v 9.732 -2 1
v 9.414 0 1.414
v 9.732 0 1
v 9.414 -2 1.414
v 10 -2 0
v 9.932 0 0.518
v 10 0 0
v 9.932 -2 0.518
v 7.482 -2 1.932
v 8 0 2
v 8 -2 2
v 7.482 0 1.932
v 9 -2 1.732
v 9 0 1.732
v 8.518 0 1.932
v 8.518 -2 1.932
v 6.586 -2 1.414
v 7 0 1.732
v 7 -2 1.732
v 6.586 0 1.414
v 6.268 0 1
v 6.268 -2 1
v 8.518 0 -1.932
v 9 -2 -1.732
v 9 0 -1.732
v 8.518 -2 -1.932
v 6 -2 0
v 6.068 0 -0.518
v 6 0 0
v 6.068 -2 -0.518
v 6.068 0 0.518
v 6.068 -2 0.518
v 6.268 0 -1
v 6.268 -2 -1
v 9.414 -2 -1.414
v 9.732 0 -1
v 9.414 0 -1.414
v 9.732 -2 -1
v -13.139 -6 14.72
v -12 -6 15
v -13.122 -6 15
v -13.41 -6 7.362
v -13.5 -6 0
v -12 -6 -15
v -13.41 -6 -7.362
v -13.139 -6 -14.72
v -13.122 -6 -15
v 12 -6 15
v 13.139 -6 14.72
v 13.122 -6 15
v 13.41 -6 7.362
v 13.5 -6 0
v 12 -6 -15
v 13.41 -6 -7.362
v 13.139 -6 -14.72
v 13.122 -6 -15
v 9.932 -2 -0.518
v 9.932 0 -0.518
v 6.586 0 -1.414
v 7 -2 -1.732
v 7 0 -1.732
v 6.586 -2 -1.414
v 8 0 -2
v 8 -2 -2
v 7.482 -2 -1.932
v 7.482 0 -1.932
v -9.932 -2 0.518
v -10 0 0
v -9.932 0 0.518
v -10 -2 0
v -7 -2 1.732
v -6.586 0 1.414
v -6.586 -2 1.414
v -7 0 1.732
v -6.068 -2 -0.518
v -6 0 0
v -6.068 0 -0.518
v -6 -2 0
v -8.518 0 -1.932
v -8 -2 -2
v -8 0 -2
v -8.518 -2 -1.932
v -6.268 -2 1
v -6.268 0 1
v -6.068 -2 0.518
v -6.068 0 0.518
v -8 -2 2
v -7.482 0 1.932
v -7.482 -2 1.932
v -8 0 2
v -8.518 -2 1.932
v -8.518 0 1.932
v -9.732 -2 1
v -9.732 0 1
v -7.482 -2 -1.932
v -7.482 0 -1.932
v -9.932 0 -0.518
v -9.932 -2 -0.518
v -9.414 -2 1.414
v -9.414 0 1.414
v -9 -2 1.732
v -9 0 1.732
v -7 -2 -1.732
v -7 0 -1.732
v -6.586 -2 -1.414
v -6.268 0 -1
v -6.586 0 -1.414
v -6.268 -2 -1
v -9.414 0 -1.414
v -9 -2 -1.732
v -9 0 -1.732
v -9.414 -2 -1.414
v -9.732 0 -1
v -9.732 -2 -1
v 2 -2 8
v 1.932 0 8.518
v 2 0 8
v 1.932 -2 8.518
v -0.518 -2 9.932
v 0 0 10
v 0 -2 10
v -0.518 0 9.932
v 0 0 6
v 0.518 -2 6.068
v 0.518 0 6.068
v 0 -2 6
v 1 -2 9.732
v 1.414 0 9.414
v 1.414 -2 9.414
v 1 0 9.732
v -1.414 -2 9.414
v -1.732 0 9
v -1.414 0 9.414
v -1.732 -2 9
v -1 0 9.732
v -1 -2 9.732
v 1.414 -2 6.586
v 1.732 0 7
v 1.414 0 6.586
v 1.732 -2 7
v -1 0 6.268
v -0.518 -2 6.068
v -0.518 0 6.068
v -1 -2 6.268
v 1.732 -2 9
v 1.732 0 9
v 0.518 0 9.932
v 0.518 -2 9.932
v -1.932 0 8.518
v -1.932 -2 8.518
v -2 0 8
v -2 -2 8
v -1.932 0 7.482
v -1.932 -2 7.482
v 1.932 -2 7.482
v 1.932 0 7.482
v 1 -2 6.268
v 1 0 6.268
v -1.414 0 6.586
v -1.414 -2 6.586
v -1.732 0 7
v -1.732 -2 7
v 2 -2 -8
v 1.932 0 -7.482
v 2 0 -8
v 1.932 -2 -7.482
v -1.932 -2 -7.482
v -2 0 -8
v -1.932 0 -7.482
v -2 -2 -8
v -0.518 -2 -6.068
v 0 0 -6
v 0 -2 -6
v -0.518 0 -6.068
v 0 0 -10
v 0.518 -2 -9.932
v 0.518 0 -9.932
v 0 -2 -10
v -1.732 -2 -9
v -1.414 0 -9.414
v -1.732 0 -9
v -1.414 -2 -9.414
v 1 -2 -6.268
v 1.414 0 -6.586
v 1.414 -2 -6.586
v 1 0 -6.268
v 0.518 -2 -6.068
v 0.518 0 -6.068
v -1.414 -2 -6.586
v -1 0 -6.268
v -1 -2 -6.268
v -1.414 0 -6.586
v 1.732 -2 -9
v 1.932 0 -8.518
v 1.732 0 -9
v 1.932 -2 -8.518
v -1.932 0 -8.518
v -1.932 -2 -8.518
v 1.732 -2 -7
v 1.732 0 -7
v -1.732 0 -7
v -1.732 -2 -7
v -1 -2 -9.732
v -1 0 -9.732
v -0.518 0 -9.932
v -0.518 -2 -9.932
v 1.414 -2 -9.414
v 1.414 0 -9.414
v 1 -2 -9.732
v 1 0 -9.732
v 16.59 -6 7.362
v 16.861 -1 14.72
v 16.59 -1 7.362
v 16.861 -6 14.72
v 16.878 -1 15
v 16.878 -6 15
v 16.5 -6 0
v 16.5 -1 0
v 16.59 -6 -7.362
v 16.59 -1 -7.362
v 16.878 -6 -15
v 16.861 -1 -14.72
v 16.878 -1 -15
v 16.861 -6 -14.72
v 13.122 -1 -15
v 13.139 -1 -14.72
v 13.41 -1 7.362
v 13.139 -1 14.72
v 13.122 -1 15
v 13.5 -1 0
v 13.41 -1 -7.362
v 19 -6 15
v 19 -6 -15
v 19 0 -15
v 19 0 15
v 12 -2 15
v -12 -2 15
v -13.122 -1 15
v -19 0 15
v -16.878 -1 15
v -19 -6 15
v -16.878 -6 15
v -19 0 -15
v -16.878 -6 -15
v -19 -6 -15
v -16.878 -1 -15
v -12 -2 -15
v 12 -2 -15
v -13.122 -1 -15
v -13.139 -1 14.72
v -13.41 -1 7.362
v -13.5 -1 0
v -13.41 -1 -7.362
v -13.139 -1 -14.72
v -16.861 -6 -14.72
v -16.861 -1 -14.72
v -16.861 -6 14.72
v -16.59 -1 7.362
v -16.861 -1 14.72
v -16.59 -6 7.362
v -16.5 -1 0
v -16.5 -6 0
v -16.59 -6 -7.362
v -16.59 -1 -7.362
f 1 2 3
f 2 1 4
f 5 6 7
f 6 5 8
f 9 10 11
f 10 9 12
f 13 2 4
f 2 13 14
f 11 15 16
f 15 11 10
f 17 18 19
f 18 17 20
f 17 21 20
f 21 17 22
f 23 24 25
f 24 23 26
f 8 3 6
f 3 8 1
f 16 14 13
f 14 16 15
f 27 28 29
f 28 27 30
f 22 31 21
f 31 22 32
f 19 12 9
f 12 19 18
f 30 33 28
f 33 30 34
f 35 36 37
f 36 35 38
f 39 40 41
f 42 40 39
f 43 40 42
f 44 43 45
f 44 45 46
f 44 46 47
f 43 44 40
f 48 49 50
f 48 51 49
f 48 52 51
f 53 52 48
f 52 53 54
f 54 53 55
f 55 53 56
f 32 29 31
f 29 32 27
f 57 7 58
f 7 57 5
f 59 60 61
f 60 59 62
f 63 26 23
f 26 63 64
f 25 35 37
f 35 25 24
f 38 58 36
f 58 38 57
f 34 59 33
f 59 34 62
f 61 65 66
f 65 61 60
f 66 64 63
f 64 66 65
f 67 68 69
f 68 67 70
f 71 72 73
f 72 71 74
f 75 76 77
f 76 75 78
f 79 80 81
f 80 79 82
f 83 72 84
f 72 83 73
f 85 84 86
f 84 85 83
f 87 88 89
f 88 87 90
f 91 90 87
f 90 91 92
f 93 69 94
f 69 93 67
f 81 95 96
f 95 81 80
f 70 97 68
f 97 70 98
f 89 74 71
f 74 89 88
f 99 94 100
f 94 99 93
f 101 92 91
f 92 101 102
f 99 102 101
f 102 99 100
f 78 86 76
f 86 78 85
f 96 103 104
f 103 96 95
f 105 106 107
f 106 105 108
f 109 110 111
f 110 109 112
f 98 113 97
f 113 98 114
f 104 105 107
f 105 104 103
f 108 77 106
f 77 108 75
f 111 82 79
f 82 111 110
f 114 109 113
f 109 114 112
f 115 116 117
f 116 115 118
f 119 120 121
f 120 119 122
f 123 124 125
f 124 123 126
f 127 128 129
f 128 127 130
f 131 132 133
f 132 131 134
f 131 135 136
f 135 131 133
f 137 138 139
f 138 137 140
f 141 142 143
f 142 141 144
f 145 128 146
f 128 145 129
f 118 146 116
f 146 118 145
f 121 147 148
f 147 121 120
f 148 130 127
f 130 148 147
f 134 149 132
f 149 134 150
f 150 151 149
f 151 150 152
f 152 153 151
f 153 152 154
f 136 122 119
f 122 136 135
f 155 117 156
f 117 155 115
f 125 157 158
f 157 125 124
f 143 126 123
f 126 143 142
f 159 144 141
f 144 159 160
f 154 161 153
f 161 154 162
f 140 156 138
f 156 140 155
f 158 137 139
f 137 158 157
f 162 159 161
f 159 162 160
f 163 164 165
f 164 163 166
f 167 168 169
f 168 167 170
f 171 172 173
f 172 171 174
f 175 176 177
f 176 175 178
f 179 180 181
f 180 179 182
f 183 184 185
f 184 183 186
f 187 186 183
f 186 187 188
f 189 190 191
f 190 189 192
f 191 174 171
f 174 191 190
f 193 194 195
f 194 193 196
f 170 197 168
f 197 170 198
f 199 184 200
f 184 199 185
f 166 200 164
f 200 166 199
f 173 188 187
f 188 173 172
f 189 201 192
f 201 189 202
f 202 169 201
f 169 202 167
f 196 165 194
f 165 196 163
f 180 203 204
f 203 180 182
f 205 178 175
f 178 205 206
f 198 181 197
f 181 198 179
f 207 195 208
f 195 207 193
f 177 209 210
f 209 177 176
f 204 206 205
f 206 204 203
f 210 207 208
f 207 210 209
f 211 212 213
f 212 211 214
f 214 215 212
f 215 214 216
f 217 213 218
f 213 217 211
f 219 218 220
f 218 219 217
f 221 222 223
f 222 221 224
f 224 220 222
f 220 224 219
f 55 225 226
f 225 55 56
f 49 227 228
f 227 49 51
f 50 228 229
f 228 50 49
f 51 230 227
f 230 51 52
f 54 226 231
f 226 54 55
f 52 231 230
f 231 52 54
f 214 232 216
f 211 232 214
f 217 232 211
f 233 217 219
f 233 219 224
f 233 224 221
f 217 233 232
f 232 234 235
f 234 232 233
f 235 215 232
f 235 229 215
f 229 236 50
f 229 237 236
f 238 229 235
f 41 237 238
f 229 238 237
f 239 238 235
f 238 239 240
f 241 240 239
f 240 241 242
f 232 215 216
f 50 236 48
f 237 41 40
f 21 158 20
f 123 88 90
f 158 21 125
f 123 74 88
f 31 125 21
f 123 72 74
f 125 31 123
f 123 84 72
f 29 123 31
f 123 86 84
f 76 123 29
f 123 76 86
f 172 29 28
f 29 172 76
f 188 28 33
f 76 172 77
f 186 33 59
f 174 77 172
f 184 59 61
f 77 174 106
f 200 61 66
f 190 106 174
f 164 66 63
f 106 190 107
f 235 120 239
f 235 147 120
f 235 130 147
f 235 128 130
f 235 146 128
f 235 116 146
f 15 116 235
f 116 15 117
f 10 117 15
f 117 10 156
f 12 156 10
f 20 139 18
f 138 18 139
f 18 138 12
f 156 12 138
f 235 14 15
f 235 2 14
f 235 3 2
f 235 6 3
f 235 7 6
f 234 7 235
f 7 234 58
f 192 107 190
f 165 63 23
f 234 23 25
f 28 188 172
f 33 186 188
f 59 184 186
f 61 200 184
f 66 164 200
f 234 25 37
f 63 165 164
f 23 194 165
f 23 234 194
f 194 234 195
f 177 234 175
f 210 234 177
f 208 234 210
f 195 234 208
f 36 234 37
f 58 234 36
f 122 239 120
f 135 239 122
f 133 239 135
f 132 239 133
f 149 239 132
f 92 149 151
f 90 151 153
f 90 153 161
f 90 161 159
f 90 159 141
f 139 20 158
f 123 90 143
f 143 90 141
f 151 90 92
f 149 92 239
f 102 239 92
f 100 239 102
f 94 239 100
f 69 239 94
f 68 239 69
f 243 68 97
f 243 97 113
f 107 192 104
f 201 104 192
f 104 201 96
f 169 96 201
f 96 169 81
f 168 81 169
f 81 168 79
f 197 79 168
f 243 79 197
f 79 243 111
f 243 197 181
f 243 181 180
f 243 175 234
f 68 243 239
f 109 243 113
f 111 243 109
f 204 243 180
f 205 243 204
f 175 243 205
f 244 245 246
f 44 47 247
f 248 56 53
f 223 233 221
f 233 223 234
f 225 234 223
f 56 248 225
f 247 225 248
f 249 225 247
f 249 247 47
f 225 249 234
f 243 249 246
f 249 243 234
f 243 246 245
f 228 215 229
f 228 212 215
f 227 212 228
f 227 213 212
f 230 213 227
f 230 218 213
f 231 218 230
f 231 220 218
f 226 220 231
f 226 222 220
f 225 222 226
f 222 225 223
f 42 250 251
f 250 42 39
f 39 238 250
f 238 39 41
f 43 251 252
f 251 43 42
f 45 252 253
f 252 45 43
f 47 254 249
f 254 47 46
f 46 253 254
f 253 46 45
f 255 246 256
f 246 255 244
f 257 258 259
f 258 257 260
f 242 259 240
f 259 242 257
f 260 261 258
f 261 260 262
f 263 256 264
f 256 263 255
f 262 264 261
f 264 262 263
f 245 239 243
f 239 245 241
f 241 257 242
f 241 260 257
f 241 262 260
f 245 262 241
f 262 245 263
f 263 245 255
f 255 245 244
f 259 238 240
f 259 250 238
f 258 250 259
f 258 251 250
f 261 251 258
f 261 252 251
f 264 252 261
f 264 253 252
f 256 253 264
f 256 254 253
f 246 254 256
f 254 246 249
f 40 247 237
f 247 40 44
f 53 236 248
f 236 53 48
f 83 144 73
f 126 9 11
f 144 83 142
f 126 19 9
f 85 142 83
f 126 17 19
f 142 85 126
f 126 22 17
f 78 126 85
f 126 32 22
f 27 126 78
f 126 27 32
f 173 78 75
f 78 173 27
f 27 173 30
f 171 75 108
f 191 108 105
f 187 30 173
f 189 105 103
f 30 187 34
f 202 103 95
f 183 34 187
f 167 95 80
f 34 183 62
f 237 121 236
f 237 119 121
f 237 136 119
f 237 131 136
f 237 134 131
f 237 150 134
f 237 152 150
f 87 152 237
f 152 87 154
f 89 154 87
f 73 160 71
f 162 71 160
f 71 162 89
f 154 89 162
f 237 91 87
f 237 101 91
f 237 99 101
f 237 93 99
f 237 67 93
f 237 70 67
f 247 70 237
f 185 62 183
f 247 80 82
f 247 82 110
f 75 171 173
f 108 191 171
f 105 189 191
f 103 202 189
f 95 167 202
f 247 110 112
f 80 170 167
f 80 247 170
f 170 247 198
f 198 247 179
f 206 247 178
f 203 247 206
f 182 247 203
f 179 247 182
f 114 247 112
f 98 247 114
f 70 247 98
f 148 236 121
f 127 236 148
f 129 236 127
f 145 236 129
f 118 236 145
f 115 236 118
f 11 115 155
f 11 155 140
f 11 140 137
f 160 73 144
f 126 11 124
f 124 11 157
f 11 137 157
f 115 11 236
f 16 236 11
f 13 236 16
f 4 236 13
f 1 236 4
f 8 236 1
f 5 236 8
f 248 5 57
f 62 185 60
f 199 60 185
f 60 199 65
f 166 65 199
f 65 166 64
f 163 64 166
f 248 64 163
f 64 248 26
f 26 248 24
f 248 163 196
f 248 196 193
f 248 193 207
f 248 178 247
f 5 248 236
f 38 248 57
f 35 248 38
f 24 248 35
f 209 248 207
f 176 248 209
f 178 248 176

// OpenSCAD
sliderWidth = 30;
sliderHeight = 30;
sliderDepth = 6;

tabWidth = 8;
tabGapWidth = 3;
tabRadius = 300.0;
tabDepth = 5;

lowerWidth = 24;
lowerDepth = 3;

upperWidth=24;
upperDepth=4;


holeOffset = 8;
holeRadius = 2;

bigHoleDepth = 1.5;
bigHoleRadius = 4.75;

tabFacets = 256;
holeFacets = 24;
blockFacets = 32;

//BigHoles();
Slider();

//translate([0,sliderHeight*1.25,0])
//    Slider();


module Slider()
{
    rotate([90,0,0])
    difference()
    {
        union() {
            translate([sliderWidth/2,0,0])
                Tab();
            translate([-sliderWidth/2,0,0])
                Tab();
            translate([0,0,sliderDepth/2])
                cube([sliderWidth-tabWidth,sliderHeight,sliderDepth],
                     center=true);

        }
        Holes();

        
      translate([0,0,sliderDepth])
            RoundedBlock(upperWidth, 2*sliderHeight, 2*upperDepth);
      //  translate([0,0,0])
          //  RoundedBlock(lowerWidth, 2*sliderHeight, 2*lowerDepth);
    }
}

module Tab() {
    union() {
        translate([0,0,sliderDepth/2])
            intersection() {
                cube([tabWidth,sliderHeight,sliderDepth],
                     center = true);
                union() {
                    translate([tabRadius + tabGapWidth/2,0,0])
                        cylinder(h = sliderDepth*2, r = tabRadius, 
                                 center=true, $fn=tabFacets);
                    translate([-(tabRadius + tabGapWidth/2),0,0])
                        cylinder(h = sliderDepth*2, r = tabRadius, 
                                 center=true, $fn=tabFacets);

               }
           }
        translate([0,0,(sliderDepth-tabDepth)/2])
           cube([tabWidth,sliderHeight,(sliderDepth-tabDepth)], center=true);
   }
}

module Holes() {
    translate([holeOffset,0,0])
        cylinder(r=holeRadius,h=2*sliderDepth, center=true, $fn=holeFacets);
    translate([-holeOffset,0,0])
        cylinder(r=holeRadius,h=2*sliderDepth, center=true, $fn=holeFacets);
    translate([0,holeOffset,0])
        cylinder(r=holeRadius,h=2*sliderDepth, center=true, $fn=holeFacets);
    translate([0,-holeOffset,0])
        cylinder(r=holeRadius,h=2*sliderDepth, center=true, $fn=holeFacets);
}

module BigHoles() {/*
    rotate([0,180])
    translate([holeOffset,0,0])
        linear_extrude(height = 2*bigHoleDepth, center=true, scale=1.5)
        circle(r=bigHoleRadius,$fn=6);
    
    rotate([0,180])
    translate([-holeOffset,0,0])
        linear_extrude(height = 2*bigHoleDepth, center=true, scale=1.5)
        circle(r=bigHoleRadius,$fn=6);
    
    rotate([0,180])
    translate([0,holeOffset,0])
        linear_extrude(height = 2*bigHoleDepth, center=true, scale=1.5)
        circle(r=bigHoleRadius,$fn=6);
    
    rotate([0,180])
    translate([0,-holeOffset,0])
        linear_extrude(height = 2*bigHoleDepth, center=true, scale=1.5)
        circle(r=bigHoleRadius,$fn=6);
    */
    translate([holeOffset,0,0]) 
        rotate([0,0,30])   
            cylinder(r=bigHoleRadius,h=2*bigHoleDepth,
                     center=true, $fn=6);
    translate([-holeOffset,0,0])
        rotate([0,0,30])
            cylinder(r=bigHoleRadius,h=2*bigHoleDepth,
                     center=true, $fn=6);
    translate([0,holeOffset,0])
        rotate([0,0,30])
            cylinder(r=bigHoleRadius,h=2*bigHoleDepth,
                     center=true, $fn=6);
    translate([0,-holeOffset,0])
        rotate([0,0,30])
            cylinder(r=bigHoleRadius,h=2*bigHoleDepth,
                     center=true, $fn=6);
}

module RoundedBlock(width, length, height, radius)
{
    cube([width, length, height], center=true);
}
